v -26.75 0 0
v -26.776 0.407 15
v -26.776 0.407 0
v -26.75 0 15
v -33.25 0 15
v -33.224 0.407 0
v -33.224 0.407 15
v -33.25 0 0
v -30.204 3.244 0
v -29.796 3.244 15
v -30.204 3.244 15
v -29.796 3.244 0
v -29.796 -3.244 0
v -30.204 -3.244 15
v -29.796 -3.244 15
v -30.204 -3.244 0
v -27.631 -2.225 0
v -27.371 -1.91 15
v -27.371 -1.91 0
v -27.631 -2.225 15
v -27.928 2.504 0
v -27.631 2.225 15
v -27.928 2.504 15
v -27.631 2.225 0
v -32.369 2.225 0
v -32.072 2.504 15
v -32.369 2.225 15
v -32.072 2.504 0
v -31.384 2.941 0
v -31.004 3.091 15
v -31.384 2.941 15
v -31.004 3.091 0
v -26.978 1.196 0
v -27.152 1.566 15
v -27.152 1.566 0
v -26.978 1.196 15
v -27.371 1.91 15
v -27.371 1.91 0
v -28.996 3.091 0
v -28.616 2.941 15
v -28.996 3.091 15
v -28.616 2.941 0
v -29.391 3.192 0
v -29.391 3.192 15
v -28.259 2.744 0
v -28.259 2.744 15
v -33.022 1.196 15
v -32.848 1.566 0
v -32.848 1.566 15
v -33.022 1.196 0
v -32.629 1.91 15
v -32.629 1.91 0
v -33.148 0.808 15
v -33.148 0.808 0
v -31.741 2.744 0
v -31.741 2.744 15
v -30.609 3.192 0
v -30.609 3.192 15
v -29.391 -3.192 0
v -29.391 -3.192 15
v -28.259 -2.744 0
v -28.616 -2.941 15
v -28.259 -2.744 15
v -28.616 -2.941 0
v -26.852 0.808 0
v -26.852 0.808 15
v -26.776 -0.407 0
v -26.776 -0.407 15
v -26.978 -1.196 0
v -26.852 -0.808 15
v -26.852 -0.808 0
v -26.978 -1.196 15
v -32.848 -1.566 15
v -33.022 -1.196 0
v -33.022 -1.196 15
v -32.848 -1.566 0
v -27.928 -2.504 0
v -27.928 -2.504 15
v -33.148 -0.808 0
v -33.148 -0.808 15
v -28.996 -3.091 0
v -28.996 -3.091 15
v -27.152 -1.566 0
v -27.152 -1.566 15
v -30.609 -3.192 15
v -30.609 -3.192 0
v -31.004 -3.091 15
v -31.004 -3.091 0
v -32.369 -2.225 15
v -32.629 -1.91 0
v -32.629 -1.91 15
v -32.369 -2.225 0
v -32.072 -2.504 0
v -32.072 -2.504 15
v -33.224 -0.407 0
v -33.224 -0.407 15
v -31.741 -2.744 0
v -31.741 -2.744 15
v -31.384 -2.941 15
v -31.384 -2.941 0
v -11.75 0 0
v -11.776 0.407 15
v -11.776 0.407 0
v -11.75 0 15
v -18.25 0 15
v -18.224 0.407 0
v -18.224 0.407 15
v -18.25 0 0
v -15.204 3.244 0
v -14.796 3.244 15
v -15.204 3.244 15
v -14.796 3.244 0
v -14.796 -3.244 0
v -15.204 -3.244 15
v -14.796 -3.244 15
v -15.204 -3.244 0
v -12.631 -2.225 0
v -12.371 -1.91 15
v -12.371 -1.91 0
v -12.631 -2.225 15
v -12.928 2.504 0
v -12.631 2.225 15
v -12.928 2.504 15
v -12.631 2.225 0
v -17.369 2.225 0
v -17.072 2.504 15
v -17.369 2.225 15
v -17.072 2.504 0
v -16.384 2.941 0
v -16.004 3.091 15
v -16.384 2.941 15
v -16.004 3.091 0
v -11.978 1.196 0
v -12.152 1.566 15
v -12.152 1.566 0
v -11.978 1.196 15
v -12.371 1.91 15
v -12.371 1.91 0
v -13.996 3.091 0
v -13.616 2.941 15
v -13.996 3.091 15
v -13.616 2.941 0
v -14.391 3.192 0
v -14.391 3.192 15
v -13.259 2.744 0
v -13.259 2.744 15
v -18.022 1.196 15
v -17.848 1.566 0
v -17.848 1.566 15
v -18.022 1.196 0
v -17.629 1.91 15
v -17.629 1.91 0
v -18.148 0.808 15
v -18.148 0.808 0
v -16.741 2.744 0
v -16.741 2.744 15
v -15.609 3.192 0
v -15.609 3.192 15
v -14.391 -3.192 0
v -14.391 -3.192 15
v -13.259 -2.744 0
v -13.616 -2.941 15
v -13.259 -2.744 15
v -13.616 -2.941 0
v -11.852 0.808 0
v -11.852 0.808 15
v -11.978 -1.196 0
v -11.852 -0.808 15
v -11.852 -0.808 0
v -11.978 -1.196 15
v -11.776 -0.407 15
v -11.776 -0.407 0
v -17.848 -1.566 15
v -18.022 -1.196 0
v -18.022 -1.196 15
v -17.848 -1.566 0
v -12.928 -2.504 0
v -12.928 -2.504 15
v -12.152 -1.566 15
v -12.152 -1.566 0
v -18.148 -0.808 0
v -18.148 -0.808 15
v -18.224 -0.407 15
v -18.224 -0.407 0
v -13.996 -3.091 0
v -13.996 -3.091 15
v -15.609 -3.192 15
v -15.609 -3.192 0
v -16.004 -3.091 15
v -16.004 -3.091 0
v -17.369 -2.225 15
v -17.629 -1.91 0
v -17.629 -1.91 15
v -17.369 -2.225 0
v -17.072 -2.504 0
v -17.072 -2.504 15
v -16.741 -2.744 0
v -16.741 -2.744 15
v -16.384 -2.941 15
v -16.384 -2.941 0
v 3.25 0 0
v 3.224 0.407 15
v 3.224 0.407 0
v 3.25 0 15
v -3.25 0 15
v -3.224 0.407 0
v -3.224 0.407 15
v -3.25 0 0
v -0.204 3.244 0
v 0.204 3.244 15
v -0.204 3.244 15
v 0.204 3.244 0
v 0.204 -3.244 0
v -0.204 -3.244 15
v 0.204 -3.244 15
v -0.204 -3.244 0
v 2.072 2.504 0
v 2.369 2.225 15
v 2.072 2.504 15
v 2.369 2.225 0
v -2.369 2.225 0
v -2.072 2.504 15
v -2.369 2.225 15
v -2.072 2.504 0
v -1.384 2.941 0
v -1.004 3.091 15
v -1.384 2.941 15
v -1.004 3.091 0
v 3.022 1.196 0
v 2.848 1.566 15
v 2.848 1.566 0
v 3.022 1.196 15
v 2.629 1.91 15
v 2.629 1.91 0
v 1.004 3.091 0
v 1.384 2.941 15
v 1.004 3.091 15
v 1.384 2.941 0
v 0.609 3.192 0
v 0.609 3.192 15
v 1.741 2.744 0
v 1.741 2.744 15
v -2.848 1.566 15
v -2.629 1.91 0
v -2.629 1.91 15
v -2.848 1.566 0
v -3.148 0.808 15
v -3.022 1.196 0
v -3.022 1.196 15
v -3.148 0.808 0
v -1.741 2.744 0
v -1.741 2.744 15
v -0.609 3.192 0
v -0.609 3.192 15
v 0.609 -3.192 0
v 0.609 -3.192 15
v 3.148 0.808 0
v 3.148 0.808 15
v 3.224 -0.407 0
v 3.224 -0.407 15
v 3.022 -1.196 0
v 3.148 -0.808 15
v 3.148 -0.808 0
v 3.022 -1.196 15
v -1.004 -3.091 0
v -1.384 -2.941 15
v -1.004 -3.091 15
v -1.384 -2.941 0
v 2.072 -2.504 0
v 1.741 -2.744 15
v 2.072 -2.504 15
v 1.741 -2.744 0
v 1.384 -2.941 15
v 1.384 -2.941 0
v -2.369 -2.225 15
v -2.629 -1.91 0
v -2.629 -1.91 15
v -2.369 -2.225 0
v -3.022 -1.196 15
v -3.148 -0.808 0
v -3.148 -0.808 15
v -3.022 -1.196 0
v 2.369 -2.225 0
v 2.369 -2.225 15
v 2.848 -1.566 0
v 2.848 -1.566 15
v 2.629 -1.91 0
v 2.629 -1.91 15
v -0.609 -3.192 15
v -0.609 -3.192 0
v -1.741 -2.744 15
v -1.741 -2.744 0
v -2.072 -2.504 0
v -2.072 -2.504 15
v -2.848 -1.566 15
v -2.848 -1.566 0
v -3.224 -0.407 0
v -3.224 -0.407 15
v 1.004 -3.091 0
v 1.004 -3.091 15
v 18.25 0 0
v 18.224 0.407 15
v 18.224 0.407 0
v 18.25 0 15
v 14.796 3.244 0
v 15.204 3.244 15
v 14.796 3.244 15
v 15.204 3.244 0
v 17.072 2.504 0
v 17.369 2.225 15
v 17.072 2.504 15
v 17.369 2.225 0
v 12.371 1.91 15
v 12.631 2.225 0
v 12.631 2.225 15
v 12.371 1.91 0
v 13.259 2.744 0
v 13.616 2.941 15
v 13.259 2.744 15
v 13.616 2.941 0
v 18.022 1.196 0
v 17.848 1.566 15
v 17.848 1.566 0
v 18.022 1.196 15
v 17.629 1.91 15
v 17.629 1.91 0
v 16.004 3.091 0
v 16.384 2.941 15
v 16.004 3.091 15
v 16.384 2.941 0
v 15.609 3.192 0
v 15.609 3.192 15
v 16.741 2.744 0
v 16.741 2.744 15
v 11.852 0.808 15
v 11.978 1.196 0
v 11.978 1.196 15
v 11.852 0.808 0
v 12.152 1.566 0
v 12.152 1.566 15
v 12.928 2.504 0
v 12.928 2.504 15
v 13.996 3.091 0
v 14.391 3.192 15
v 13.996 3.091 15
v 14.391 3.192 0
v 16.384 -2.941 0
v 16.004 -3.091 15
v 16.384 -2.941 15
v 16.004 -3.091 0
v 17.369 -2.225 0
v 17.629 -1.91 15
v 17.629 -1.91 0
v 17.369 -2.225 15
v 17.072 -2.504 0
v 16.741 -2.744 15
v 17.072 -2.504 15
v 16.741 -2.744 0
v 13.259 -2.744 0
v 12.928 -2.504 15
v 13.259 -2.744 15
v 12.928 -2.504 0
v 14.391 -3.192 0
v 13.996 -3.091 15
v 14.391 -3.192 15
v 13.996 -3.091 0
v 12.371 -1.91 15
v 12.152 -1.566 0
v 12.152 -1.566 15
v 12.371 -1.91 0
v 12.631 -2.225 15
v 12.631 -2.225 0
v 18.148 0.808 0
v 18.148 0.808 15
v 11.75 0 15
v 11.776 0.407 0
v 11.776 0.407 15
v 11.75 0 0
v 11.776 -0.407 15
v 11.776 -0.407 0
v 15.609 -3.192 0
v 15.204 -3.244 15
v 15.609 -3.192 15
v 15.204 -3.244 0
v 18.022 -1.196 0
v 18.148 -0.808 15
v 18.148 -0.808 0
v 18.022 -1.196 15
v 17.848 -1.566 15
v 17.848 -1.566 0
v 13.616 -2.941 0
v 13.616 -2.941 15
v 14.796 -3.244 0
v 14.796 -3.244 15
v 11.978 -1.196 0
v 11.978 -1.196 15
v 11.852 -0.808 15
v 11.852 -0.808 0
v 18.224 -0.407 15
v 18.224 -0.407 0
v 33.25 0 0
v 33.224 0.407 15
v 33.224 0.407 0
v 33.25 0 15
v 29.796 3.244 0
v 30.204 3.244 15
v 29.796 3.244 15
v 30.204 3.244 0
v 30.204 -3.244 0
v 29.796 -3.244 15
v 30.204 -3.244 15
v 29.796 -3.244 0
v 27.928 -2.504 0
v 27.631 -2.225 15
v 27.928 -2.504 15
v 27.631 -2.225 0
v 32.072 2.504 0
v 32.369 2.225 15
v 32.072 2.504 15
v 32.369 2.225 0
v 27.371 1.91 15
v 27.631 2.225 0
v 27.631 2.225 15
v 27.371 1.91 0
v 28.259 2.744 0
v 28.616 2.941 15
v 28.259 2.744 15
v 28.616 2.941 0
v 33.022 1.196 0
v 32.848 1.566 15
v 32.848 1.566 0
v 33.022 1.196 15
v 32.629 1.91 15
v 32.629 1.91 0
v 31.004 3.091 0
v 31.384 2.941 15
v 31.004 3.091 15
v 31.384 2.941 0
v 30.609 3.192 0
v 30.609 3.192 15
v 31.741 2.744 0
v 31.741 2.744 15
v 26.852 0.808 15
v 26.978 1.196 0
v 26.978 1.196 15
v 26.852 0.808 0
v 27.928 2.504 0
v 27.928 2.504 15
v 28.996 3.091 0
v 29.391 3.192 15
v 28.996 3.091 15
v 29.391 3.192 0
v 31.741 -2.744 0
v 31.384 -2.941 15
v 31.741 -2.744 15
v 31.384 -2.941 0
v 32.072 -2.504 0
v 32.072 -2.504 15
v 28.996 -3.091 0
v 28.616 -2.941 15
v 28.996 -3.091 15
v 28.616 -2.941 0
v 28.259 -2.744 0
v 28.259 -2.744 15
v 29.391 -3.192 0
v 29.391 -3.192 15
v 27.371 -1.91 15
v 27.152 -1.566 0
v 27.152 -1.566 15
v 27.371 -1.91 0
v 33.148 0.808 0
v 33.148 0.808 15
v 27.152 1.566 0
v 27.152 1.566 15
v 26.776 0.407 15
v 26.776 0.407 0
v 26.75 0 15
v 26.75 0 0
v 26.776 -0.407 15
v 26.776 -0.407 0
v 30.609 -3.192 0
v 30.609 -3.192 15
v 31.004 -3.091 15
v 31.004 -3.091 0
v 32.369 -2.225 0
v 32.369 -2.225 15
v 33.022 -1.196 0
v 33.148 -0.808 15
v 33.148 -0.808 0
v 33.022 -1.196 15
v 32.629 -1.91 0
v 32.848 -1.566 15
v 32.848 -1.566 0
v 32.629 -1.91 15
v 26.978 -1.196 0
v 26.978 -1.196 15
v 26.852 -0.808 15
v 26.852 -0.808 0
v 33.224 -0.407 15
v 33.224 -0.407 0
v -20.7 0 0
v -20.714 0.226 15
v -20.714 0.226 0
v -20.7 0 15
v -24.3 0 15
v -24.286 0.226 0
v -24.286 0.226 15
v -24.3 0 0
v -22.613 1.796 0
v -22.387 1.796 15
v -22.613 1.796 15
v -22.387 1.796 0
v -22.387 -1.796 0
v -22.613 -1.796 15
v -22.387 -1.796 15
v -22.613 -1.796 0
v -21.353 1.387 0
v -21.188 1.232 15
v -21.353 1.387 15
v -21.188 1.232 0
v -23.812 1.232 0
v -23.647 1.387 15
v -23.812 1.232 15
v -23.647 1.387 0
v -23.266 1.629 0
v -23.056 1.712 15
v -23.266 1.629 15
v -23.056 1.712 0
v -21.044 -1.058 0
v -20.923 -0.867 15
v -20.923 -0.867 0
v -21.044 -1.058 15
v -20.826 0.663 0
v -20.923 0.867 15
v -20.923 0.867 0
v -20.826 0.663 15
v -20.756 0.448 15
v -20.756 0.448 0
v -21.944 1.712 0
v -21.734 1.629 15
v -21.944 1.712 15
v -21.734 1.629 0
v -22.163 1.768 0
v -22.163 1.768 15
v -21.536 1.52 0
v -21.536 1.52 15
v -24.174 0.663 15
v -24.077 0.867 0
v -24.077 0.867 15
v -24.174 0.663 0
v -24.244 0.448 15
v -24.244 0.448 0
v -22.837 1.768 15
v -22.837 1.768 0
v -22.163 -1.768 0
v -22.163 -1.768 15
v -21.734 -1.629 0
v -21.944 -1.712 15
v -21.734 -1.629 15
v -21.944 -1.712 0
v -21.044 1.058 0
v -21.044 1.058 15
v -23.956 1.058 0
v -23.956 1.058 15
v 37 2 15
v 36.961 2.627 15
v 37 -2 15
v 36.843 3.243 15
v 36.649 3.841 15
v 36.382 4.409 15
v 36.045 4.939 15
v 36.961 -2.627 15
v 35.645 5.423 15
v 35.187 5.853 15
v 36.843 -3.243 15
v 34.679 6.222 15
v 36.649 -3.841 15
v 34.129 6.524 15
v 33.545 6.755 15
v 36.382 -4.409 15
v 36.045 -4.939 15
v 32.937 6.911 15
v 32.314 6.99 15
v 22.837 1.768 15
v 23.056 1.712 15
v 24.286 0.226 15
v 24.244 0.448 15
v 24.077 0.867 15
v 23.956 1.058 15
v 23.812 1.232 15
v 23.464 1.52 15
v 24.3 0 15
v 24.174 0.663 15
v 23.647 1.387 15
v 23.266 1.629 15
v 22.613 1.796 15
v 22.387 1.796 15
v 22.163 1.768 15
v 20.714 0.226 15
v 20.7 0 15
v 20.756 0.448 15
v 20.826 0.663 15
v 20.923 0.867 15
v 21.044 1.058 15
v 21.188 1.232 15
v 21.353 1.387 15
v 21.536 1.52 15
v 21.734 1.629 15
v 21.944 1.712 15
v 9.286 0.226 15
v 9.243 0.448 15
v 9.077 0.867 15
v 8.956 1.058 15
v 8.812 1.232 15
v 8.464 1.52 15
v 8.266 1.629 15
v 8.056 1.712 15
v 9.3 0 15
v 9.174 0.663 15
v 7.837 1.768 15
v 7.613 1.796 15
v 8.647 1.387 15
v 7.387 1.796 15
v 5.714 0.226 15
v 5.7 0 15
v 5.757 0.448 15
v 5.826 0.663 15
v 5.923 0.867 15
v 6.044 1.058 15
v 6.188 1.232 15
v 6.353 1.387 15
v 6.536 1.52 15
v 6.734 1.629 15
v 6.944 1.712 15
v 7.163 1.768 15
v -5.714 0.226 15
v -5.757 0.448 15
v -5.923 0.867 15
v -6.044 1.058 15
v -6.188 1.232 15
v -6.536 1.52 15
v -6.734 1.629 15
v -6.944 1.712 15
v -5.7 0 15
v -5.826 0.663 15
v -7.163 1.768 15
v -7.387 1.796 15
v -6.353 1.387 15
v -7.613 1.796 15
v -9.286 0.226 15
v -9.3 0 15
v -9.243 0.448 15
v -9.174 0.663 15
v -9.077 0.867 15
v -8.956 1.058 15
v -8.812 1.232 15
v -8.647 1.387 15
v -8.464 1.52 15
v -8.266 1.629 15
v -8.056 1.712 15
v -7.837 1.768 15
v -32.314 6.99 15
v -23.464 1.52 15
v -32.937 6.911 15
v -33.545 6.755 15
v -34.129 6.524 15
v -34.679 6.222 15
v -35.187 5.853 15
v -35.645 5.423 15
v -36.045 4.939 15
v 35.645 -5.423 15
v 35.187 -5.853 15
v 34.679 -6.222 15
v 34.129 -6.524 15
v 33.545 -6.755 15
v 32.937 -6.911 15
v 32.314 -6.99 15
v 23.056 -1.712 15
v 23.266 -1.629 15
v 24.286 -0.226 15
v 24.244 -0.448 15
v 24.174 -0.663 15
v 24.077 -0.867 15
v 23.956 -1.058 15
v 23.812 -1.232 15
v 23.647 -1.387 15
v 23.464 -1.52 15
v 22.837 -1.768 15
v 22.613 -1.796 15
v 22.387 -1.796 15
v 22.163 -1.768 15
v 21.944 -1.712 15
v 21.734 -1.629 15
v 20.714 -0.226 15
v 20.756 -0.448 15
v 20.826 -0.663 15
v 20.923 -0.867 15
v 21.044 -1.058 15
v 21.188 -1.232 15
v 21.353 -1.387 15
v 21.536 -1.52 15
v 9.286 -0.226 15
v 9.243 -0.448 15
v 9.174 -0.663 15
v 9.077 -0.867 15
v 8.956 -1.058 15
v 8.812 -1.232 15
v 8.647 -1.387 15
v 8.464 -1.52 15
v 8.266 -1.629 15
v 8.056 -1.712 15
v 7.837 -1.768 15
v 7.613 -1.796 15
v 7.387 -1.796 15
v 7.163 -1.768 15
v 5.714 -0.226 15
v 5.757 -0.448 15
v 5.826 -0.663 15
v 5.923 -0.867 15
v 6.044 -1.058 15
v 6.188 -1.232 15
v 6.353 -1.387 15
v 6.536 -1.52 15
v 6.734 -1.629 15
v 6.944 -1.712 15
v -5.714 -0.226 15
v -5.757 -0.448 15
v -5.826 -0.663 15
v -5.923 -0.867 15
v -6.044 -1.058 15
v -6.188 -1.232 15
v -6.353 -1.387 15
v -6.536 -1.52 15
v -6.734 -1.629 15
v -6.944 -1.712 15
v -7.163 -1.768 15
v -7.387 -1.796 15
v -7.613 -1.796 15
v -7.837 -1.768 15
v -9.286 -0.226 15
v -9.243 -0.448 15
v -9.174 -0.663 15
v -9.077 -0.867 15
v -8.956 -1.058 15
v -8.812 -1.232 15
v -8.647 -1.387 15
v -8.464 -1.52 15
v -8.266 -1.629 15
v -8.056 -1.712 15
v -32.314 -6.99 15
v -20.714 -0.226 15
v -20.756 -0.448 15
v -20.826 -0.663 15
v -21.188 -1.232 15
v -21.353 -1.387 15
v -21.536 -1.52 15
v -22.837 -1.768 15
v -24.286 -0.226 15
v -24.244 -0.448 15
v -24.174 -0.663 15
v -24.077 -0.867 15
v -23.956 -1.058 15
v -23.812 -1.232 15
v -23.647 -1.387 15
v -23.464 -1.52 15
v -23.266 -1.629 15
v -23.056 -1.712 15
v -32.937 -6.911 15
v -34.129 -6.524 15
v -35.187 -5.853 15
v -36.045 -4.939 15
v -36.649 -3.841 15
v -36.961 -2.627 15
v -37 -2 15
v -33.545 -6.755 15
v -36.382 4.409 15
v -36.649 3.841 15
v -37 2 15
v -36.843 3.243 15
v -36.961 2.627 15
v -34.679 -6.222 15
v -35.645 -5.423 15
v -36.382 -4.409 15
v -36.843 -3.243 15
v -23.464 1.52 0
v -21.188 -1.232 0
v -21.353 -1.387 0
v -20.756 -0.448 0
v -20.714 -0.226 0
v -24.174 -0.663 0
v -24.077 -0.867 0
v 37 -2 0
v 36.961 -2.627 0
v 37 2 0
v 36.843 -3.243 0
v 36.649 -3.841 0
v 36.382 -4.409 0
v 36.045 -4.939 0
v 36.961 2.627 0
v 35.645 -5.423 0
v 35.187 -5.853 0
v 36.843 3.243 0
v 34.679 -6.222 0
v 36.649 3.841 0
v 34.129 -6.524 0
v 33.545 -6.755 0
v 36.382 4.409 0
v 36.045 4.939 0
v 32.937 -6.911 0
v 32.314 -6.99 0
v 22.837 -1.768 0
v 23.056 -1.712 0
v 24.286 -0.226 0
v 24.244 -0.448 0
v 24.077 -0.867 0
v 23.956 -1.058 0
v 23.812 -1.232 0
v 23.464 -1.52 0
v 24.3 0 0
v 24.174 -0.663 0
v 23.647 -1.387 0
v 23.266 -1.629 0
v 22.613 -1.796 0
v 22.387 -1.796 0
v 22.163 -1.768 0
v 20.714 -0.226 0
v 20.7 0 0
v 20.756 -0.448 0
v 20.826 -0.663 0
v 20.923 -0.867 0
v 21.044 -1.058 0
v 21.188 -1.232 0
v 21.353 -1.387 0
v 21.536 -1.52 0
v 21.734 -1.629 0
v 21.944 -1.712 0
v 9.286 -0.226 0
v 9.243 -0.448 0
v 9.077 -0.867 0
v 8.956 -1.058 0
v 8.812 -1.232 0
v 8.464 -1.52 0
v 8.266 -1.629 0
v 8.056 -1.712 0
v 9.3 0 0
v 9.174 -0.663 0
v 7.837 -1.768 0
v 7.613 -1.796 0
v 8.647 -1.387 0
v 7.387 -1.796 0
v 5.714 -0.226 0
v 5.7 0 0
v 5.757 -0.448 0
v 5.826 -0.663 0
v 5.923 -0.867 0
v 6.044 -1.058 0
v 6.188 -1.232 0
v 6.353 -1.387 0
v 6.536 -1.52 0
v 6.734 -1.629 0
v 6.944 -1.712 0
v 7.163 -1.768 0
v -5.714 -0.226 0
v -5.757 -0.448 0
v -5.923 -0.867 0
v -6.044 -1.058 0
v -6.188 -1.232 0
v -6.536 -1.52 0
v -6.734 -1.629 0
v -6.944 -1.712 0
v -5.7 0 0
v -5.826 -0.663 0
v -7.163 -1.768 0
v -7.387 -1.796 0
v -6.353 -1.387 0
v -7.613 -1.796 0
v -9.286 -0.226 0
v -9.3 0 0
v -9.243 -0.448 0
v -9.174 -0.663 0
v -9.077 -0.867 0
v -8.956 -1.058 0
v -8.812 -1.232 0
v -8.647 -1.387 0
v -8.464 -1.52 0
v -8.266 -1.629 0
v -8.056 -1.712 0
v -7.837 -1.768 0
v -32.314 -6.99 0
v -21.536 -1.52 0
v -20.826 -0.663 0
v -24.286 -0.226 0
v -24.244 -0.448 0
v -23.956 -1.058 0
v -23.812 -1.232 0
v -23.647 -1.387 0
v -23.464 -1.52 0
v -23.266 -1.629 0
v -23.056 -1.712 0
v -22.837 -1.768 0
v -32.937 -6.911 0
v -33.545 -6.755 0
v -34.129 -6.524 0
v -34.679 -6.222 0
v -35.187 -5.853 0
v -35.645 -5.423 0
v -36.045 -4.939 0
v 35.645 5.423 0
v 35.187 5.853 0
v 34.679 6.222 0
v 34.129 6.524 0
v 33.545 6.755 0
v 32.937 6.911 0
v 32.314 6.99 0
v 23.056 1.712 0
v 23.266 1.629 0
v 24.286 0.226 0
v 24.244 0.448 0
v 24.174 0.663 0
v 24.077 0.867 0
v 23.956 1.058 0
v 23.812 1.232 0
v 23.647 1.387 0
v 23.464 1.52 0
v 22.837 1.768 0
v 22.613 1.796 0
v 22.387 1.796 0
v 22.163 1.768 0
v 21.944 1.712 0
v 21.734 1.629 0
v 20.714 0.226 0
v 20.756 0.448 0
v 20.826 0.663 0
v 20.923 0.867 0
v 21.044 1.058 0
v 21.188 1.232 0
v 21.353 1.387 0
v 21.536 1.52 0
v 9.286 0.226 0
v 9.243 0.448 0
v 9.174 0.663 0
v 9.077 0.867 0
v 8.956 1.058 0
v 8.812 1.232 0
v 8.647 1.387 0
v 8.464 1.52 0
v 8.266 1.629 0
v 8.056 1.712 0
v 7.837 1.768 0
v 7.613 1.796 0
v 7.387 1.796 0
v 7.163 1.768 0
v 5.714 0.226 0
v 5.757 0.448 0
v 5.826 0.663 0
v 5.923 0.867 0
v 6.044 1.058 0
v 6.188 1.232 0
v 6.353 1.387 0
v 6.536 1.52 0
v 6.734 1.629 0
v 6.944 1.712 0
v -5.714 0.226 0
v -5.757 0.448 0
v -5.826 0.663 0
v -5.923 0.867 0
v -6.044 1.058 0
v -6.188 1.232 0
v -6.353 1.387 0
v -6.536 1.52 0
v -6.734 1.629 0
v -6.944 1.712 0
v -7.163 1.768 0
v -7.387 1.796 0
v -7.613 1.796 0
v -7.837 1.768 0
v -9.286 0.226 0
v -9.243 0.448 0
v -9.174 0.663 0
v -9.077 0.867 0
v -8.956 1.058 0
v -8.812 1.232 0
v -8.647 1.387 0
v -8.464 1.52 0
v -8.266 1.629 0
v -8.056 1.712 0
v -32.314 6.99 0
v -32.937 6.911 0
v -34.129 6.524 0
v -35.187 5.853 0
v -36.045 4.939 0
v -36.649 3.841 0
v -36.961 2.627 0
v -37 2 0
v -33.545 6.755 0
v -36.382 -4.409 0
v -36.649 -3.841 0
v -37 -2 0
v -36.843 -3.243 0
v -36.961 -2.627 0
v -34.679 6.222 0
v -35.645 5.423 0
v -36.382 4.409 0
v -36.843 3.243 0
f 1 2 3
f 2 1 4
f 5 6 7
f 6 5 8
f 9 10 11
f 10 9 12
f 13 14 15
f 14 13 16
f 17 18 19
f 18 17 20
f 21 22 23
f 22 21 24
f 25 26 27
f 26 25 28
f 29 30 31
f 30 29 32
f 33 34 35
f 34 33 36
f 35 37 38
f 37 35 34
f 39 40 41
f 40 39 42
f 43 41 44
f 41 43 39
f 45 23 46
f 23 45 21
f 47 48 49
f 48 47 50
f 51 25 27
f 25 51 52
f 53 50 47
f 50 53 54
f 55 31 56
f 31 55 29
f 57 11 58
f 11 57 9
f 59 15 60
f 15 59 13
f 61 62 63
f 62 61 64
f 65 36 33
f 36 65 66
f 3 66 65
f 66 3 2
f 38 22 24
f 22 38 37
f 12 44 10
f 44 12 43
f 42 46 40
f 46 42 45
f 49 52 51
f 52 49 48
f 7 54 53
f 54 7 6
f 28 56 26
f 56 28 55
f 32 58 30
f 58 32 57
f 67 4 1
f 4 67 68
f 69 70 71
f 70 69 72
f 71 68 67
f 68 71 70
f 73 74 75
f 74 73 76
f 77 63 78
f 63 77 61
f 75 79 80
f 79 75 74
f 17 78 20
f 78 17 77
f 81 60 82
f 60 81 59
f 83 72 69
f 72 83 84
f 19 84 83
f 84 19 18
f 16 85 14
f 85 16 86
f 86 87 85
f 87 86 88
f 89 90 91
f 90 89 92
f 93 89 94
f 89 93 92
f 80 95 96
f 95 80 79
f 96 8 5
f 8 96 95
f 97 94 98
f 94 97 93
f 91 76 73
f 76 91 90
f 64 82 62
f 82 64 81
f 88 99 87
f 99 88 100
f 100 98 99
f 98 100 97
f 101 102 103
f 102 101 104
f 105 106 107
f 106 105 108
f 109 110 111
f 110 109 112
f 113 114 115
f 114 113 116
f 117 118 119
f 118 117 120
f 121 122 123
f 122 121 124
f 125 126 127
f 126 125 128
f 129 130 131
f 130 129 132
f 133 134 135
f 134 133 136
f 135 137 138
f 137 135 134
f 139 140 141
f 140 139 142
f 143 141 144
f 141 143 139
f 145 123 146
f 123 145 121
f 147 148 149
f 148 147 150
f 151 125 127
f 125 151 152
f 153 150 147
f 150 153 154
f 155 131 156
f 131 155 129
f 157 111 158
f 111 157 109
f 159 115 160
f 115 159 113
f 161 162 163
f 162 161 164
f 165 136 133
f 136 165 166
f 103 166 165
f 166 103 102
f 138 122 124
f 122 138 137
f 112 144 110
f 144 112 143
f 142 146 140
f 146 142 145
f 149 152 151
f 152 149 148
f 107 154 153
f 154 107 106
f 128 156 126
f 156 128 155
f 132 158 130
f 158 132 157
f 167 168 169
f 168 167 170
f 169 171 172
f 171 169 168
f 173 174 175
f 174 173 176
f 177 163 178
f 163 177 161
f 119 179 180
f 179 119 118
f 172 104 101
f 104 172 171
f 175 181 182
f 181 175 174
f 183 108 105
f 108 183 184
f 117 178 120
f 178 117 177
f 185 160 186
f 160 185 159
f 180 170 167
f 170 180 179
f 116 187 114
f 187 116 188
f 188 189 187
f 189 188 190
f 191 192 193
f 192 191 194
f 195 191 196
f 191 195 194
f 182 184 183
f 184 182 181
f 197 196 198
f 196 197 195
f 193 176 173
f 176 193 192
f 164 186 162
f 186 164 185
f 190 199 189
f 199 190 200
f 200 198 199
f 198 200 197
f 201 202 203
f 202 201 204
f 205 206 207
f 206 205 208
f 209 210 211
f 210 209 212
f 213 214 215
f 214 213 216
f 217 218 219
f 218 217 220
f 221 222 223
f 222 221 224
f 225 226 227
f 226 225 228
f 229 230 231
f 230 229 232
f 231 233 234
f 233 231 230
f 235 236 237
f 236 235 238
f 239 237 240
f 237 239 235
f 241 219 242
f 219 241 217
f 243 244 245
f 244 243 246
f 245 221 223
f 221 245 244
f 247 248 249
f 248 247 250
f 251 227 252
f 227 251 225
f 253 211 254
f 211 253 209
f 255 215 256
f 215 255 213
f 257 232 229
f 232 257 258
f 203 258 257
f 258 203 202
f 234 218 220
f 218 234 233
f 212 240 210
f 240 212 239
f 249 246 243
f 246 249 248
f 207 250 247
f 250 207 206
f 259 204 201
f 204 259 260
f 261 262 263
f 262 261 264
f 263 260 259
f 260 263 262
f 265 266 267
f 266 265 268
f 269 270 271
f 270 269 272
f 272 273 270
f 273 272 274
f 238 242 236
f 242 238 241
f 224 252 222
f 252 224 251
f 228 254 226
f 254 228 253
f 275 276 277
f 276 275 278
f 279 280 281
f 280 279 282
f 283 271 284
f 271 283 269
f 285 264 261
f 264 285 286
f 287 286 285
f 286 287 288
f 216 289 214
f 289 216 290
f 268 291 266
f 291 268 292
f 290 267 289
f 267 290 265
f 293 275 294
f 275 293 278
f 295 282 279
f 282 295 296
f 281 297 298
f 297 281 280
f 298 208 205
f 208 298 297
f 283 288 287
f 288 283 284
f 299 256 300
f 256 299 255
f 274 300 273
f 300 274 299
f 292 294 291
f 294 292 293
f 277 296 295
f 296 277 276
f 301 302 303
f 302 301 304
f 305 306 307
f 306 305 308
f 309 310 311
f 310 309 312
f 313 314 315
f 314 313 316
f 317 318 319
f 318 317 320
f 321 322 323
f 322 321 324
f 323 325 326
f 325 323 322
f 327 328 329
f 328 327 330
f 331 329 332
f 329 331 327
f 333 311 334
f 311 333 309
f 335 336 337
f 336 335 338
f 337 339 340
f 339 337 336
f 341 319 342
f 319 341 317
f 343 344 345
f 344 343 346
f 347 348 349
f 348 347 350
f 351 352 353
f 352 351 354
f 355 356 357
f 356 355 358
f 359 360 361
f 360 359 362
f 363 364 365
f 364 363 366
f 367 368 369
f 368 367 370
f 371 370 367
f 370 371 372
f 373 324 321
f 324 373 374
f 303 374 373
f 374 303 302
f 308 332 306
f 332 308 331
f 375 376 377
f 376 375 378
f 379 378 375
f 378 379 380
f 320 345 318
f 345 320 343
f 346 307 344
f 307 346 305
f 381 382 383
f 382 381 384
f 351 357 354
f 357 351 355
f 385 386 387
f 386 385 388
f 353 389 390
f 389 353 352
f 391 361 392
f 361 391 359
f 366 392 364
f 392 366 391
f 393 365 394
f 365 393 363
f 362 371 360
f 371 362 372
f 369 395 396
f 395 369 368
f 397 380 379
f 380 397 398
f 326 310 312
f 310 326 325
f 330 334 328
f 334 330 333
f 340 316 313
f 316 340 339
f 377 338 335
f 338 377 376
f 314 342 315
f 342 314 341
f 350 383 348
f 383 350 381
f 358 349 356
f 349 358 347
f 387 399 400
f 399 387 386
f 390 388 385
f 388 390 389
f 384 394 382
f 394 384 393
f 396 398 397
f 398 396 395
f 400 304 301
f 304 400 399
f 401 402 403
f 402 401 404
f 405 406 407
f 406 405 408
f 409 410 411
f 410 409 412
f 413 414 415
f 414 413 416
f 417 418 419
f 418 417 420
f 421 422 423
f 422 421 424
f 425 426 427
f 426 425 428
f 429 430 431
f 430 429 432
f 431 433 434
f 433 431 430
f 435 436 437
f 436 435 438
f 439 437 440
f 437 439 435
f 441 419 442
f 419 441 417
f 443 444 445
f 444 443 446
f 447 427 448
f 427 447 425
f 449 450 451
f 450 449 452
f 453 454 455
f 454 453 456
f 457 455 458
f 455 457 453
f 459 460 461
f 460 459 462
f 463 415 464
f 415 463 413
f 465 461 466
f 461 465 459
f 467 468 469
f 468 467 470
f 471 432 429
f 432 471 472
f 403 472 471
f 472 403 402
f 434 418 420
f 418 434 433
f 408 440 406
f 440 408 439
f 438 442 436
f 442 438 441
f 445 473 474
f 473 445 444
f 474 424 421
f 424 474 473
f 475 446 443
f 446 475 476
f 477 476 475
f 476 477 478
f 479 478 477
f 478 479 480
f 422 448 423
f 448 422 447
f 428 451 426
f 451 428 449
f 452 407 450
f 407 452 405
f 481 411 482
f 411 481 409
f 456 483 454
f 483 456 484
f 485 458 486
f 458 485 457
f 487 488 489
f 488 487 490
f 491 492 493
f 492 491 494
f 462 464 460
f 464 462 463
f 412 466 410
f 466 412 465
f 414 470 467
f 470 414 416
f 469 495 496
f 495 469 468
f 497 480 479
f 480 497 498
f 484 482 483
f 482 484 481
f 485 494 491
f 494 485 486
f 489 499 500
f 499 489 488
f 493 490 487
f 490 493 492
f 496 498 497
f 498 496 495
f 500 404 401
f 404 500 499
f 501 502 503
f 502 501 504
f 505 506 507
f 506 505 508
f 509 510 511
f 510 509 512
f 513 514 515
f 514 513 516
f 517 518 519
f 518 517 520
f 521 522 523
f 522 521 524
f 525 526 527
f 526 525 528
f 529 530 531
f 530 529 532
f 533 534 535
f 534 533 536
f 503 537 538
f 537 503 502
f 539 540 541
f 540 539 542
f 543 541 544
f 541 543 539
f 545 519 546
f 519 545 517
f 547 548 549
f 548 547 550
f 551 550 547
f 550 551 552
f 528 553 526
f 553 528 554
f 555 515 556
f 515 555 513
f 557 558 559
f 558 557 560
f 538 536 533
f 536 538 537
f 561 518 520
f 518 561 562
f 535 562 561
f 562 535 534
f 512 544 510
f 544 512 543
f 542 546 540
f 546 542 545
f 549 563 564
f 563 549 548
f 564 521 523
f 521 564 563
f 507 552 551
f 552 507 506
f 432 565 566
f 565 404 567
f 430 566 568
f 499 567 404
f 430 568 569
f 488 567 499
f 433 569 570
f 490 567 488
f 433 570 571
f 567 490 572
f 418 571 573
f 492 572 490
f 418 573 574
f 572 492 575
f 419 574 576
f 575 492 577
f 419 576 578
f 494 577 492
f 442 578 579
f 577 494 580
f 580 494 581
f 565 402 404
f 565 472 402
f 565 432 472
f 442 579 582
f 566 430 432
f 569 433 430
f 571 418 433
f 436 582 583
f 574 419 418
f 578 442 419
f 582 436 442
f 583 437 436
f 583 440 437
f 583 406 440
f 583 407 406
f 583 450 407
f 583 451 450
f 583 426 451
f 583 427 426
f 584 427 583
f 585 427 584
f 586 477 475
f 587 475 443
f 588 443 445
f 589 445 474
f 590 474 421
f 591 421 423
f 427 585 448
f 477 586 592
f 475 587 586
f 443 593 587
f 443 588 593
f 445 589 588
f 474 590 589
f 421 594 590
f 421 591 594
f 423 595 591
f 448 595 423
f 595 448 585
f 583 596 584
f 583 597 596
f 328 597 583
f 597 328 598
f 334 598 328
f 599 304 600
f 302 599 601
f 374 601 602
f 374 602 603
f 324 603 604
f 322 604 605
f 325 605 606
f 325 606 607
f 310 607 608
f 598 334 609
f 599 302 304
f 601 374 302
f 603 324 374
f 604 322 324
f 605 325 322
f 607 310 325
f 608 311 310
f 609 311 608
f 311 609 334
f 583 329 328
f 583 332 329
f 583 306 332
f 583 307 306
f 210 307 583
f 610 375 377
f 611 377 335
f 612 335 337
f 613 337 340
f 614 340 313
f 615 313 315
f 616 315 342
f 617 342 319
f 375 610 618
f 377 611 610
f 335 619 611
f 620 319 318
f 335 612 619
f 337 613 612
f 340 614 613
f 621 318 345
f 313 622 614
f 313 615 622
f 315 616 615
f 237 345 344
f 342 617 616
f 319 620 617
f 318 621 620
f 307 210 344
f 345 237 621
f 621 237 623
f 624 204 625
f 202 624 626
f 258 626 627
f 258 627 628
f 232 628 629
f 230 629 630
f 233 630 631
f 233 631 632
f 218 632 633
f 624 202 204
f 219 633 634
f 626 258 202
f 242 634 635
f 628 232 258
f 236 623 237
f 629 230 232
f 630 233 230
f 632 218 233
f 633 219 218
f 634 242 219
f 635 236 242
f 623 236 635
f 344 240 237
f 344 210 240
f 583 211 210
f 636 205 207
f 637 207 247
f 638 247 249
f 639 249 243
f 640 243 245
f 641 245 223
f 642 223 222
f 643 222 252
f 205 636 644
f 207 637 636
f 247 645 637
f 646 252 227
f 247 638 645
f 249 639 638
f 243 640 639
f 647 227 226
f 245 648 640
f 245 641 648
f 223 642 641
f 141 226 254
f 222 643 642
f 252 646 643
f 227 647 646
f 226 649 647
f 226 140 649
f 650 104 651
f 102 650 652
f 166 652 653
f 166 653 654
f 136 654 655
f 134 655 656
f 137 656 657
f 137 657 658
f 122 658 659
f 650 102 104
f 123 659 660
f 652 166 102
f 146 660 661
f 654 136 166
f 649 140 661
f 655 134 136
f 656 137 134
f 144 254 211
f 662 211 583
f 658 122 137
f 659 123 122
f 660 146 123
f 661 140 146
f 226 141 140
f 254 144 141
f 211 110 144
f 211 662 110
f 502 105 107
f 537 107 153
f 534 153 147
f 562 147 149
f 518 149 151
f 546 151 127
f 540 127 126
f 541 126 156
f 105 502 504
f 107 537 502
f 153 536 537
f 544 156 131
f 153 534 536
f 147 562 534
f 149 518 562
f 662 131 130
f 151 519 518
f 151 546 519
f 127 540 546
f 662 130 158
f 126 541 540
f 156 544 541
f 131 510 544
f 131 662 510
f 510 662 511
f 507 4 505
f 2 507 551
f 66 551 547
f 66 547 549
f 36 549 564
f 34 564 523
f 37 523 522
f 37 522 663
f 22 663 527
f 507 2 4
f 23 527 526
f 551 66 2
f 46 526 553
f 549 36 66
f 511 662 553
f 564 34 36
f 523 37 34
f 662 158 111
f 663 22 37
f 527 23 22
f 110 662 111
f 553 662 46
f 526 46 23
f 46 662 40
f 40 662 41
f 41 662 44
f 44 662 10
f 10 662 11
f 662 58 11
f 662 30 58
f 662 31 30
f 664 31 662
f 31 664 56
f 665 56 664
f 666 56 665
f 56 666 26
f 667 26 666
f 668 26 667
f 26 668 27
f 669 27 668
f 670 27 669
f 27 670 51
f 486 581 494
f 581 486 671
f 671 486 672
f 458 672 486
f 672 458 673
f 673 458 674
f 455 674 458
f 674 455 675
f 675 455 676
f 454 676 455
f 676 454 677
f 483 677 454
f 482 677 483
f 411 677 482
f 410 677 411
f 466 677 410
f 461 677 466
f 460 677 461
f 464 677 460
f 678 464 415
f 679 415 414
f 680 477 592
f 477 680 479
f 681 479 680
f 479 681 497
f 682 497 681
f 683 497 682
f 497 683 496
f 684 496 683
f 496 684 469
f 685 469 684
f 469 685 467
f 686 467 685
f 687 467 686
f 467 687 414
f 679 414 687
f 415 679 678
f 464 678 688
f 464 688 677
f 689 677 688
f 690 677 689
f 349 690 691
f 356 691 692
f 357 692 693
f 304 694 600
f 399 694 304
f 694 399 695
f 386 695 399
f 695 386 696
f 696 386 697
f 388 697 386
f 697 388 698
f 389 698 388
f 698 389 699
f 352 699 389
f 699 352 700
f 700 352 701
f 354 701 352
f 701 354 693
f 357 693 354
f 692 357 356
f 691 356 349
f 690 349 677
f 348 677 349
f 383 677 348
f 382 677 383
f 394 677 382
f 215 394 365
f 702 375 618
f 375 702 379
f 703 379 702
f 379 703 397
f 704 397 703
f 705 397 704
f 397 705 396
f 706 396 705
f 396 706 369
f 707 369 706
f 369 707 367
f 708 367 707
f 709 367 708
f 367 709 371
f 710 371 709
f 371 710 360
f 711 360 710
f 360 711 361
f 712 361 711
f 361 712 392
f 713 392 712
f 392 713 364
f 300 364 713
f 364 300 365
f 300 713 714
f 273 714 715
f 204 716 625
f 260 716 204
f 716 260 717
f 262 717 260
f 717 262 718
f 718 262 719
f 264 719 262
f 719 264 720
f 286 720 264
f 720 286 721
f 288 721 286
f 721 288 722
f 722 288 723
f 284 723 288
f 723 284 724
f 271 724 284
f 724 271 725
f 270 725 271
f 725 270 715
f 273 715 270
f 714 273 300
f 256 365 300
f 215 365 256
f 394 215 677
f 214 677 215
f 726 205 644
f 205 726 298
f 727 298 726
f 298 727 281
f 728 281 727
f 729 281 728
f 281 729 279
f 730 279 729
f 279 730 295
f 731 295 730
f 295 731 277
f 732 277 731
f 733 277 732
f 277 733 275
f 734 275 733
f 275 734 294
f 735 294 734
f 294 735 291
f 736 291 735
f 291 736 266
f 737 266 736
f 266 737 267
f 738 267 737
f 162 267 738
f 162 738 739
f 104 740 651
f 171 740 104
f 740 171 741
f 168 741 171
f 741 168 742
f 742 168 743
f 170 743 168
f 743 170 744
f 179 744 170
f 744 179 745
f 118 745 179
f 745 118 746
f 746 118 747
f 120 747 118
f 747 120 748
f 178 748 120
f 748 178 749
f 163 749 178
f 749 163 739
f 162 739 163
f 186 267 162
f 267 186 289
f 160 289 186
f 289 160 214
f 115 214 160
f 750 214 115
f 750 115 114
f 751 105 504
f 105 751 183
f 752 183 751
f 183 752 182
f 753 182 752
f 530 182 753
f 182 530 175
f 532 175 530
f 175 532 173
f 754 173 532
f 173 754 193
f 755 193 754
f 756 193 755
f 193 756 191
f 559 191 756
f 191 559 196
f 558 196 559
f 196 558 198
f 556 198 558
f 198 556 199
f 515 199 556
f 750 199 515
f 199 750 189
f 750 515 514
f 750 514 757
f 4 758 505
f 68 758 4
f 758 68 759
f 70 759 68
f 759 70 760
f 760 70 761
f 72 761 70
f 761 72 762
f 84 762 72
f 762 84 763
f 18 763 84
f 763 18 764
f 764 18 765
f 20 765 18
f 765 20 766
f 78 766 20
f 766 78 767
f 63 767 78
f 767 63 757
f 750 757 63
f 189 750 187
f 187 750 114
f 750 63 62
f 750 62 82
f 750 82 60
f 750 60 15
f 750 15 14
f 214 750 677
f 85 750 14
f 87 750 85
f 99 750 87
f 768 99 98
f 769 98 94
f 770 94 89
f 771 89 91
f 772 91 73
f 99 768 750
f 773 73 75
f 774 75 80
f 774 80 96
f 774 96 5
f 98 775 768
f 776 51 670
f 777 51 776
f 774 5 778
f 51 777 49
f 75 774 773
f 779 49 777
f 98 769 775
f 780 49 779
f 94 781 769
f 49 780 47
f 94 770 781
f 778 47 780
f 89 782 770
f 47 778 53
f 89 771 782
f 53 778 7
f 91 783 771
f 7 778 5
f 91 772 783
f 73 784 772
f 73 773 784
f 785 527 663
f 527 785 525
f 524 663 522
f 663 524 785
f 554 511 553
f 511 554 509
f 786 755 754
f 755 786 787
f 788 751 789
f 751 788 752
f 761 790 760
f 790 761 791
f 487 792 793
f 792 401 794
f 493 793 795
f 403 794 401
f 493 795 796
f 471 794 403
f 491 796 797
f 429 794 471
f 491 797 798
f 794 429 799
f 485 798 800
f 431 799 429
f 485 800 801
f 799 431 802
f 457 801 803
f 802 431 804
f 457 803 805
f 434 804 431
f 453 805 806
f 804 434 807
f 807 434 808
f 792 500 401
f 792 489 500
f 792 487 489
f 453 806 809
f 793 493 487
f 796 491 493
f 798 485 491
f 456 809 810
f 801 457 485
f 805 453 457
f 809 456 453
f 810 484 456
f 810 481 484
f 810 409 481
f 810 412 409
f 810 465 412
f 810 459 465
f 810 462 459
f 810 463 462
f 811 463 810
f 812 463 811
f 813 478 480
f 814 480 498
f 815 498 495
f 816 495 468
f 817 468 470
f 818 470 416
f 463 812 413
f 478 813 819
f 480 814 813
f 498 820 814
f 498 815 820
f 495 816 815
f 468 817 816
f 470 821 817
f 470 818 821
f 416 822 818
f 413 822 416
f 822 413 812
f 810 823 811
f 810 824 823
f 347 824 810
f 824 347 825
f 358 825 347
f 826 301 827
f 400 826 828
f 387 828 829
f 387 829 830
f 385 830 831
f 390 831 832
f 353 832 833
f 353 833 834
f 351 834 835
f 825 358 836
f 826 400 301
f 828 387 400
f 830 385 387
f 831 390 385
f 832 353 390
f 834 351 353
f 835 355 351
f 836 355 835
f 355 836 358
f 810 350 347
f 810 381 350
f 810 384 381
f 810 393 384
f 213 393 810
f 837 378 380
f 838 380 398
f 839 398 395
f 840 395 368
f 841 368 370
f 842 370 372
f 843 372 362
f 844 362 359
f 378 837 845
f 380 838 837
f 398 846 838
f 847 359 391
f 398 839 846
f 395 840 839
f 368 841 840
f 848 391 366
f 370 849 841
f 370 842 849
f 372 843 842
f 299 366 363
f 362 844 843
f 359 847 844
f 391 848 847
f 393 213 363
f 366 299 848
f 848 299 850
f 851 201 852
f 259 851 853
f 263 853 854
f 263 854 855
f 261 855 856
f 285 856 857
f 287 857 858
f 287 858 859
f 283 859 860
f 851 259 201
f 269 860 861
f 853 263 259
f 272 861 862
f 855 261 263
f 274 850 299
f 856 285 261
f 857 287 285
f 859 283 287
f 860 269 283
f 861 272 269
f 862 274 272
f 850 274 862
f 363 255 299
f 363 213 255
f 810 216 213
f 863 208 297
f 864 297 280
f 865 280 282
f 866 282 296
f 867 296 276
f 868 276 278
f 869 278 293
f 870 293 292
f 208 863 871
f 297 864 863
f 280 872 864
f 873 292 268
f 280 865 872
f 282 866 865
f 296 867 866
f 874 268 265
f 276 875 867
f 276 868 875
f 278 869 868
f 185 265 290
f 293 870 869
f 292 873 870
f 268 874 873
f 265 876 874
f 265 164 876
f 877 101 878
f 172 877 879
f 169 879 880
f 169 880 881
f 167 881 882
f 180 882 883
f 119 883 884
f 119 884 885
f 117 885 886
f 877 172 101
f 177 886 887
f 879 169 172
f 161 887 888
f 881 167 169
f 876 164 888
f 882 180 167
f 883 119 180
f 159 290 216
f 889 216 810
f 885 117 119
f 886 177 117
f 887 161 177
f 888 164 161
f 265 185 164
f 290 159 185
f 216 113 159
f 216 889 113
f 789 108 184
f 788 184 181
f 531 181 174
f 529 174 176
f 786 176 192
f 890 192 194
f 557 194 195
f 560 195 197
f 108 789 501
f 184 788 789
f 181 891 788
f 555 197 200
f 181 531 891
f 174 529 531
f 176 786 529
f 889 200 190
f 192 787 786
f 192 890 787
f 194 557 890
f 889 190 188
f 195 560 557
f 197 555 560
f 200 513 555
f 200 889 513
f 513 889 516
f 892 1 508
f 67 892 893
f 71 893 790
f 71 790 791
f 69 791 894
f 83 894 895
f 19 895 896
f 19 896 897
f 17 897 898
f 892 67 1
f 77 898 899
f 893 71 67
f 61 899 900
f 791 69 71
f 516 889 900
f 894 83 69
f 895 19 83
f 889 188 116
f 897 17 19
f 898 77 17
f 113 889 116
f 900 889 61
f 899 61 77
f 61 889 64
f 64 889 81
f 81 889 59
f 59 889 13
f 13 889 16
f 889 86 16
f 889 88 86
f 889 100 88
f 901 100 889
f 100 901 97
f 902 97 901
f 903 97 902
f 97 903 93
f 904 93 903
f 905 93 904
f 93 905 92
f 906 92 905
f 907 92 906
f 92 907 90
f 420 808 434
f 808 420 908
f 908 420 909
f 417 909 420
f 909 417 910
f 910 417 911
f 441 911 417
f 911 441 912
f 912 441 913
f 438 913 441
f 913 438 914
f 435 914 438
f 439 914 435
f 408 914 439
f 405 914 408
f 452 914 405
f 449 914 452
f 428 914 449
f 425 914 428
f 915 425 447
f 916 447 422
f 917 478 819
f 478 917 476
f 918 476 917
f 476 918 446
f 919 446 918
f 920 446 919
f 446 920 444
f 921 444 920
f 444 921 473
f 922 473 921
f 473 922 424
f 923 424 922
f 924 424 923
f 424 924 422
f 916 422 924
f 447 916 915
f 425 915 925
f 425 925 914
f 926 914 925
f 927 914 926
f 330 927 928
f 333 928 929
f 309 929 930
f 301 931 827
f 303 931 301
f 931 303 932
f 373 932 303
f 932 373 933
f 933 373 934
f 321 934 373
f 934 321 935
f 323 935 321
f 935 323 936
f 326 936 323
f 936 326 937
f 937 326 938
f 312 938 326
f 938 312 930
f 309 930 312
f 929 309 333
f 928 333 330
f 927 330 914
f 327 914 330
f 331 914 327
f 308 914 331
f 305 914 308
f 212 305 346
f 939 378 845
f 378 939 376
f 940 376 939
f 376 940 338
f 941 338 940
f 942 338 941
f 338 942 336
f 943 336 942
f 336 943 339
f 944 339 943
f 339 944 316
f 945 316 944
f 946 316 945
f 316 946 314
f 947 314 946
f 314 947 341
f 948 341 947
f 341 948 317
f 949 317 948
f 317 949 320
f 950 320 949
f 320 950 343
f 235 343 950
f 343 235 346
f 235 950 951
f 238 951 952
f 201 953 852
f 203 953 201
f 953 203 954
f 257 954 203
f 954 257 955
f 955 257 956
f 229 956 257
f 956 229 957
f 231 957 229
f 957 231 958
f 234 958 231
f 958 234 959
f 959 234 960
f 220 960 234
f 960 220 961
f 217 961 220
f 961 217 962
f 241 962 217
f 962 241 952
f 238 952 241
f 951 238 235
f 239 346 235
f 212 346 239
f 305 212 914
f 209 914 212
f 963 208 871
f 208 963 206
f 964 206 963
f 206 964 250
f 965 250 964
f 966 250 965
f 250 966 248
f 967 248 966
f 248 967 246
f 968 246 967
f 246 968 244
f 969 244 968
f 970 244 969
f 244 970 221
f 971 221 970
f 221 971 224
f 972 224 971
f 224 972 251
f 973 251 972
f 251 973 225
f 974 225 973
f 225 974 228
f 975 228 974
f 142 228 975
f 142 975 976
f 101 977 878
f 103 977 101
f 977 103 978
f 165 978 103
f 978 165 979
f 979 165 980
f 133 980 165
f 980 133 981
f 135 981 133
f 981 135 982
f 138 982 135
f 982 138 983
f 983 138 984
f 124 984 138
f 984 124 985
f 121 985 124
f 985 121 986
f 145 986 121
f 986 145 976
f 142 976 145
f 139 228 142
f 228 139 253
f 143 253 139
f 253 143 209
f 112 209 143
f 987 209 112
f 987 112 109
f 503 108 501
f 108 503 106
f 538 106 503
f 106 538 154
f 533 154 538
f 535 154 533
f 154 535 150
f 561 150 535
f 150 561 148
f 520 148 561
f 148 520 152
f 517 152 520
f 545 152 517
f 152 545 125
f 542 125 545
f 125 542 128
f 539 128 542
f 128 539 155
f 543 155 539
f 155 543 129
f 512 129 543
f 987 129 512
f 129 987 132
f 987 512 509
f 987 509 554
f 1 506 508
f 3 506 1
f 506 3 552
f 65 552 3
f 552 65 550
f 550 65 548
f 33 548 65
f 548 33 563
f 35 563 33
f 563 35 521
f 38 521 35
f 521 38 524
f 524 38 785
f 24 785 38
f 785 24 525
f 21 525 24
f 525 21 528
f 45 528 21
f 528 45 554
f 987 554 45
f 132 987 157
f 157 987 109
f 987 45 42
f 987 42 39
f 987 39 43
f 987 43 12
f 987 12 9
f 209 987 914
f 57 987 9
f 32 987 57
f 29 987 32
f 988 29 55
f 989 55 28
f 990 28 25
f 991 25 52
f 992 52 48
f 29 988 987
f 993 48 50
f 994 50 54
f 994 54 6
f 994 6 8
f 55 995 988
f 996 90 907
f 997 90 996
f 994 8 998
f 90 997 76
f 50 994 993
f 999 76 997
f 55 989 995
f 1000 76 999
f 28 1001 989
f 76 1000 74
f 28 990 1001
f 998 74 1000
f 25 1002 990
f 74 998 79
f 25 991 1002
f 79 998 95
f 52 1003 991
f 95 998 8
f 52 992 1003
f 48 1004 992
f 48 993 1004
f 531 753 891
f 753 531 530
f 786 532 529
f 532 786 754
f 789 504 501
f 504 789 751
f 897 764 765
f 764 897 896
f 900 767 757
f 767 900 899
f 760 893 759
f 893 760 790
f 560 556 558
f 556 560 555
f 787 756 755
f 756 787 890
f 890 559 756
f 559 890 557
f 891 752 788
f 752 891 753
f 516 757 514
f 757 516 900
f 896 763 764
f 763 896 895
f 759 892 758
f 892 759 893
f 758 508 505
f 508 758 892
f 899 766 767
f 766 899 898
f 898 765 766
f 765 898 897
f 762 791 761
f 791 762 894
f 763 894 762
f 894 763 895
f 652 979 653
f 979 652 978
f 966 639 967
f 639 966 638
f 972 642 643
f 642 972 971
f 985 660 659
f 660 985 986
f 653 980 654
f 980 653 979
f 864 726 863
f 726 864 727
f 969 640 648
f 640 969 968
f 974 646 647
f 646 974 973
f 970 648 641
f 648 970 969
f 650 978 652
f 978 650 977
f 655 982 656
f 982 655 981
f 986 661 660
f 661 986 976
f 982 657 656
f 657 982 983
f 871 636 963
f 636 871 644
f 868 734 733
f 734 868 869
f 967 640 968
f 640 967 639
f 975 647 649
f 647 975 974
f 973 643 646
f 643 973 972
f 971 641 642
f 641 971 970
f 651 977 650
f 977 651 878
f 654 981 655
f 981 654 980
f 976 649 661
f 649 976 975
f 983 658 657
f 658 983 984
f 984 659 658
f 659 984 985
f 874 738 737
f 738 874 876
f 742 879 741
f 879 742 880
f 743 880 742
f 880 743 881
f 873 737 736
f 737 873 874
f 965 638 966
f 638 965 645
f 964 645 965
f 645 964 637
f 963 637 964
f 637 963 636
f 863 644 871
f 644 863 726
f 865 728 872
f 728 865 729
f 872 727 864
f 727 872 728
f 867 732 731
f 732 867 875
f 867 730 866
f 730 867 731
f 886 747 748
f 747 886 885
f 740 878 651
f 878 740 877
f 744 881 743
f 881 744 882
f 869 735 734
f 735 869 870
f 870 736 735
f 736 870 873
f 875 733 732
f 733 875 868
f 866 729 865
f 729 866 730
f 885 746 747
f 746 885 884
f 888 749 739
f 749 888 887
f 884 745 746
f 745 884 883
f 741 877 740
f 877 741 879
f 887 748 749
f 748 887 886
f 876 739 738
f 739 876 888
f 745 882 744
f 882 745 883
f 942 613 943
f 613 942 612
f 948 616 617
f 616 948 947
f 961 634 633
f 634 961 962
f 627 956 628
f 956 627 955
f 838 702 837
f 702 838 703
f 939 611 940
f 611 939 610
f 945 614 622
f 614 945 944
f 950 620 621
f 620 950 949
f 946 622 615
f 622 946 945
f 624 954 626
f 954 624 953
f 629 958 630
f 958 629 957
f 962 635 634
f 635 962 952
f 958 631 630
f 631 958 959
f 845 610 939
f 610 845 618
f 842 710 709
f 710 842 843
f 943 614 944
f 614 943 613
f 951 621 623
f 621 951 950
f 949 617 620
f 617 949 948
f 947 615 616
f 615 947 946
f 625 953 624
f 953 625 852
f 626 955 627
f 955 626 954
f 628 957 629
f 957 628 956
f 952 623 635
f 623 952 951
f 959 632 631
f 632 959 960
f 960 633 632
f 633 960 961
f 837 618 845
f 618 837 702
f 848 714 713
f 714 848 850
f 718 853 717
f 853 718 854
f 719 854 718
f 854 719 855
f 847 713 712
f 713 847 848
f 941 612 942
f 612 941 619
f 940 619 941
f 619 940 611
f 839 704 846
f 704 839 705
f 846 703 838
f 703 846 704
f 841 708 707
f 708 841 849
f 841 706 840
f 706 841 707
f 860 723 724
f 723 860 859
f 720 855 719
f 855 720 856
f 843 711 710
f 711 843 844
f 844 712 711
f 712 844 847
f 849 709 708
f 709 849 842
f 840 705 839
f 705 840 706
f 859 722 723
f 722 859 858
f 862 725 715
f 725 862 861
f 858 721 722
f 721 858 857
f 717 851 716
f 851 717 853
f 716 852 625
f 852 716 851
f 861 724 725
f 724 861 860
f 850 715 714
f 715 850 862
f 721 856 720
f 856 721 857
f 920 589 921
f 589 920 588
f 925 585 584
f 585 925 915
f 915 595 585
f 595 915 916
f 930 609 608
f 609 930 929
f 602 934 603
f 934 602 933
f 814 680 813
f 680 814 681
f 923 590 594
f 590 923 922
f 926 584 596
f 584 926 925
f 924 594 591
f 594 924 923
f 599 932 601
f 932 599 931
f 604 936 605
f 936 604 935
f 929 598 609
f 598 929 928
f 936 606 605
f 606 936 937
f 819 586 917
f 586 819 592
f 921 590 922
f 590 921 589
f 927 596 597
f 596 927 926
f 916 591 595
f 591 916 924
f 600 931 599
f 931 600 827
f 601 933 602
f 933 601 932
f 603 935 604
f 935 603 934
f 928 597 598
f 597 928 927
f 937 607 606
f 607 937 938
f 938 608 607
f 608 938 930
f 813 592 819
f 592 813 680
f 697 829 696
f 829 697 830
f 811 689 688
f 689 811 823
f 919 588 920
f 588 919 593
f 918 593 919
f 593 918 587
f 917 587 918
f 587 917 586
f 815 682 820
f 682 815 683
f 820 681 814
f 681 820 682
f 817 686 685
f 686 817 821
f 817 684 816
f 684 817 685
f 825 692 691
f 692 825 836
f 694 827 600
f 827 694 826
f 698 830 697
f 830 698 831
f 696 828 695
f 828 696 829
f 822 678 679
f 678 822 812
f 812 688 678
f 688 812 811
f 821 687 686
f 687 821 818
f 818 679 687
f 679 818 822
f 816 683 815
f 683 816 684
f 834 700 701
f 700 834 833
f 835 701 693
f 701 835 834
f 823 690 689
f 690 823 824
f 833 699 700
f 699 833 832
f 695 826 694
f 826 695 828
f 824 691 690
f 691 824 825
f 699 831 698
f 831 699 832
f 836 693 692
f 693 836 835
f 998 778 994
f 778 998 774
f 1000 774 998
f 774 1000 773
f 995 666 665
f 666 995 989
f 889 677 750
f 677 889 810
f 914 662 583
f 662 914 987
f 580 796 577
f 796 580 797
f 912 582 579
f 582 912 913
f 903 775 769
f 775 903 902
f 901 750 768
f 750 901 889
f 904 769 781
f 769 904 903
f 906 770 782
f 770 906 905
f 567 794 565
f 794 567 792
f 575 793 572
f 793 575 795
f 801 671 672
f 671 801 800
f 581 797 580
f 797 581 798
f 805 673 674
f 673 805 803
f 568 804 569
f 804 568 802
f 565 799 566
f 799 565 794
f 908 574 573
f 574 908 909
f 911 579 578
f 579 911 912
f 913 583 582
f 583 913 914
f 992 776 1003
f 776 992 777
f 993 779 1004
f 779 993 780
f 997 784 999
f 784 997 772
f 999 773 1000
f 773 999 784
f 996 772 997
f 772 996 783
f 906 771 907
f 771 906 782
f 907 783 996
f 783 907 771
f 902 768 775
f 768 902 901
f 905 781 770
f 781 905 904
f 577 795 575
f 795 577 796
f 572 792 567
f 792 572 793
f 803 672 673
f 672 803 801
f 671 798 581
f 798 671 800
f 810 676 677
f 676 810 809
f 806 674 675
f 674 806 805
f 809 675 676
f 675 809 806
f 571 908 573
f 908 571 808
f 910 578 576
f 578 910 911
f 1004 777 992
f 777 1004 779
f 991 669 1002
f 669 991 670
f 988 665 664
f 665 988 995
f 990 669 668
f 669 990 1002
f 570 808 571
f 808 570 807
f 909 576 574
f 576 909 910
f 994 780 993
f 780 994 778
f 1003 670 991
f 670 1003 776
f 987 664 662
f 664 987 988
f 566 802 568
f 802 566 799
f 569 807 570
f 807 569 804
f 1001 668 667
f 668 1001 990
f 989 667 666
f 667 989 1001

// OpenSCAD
$fn = 50;


difference() {
	union() {
		hull() {
			translate(v = [-32.0000000000, 2.0000000000, 0]) {
				cylinder(h = 15, r = 5);
			}
			translate(v = [32.0000000000, 2.0000000000, 0]) {
				cylinder(h = 15, r = 5);
			}
			translate(v = [-32.0000000000, -2.0000000000, 0]) {
				cylinder(h = 15, r = 5);
			}
			translate(v = [32.0000000000, -2.0000000000, 0]) {
				cylinder(h = 15, r = 5);
			}
		}
	}
	union() {
		translate(v = [-30.0000000000, 0.0000000000, -100.0000000000]) {
			cylinder(h = 200, r = 3.2500000000);
		}
		translate(v = [-15.0000000000, 0.0000000000, -100.0000000000]) {
			cylinder(h = 200, r = 3.2500000000);
		}
		translate(v = [0.0000000000, 0.0000000000, -100.0000000000]) {
			cylinder(h = 200, r = 3.2500000000);
		}
		translate(v = [15.0000000000, 0.0000000000, -100.0000000000]) {
			cylinder(h = 200, r = 3.2500000000);
		}
		translate(v = [30.0000000000, 0.0000000000, -100.0000000000]) {
			cylinder(h = 200, r = 3.2500000000);
		}
		translate(v = [-30.0000000000, 0.0000000000, 0]) {
			cylinder(h = 15, r = 1.8000000000);
		}
		translate(v = [-22.5000000000, 0.0000000000, 0]) {
			cylinder(h = 15, r = 1.8000000000);
		}
		translate(v = [-15.0000000000, 0.0000000000, 0]) {
			cylinder(h = 15, r = 1.8000000000);
		}
		translate(v = [-7.5000000000, 0.0000000000, 0]) {
			cylinder(h = 15, r = 1.8000000000);
		}
		cylinder(h = 15, r = 1.8000000000);
		translate(v = [7.5000000000, 0.0000000000, 0]) {
			cylinder(h = 15, r = 1.8000000000);
		}
		translate(v = [15.0000000000, 0.0000000000, 0]) {
			cylinder(h = 15, r = 1.8000000000);
		}
		translate(v = [22.5000000000, 0.0000000000, 0]) {
			cylinder(h = 15, r = 1.8000000000);
		}
		translate(v = [30.0000000000, 0.0000000000, 0]) {
			cylinder(h = 15, r = 1.8000000000);
		}
		translate(v = [-30.0000000000, 0.0000000000, 0]) {
			cylinder(h = 15, r = 1.8000000000);
		}
		translate(v = [-22.5000000000, 0.0000000000, 0]) {
			cylinder(h = 15, r = 1.8000000000);
		}
		translate(v = [-15.0000000000, 0.0000000000, 0]) {
			cylinder(h = 15, r = 1.8000000000);
		}
		translate(v = [-7.5000000000, 0.0000000000, 0]) {
			cylinder(h = 15, r = 1.8000000000);
		}
		cylinder(h = 15, r = 1.8000000000);
		translate(v = [7.5000000000, 0.0000000000, 0]) {
			cylinder(h = 15, r = 1.8000000000);
		}
		translate(v = [15.0000000000, 0.0000000000, 0]) {
			cylinder(h = 15, r = 1.8000000000);
		}
		translate(v = [22.5000000000, 0.0000000000, 0]) {
			cylinder(h = 15, r = 1.8000000000);
		}
		translate(v = [30.0000000000, 0.0000000000, 0]) {
			cylinder(h = 15, r = 1.8000000000);
		}
		translate(v = [-30.0000000000, 0.0000000000, 0]) {
			cylinder(h = 15, r = 1.8000000000);
		}
		translate(v = [-22.5000000000, 0.0000000000, 0]) {
			cylinder(h = 15, r = 1.8000000000);
		}
		translate(v = [-15.0000000000, 0.0000000000, 0]) {
			cylinder(h = 15, r = 1.8000000000);
		}
		translate(v = [-7.5000000000, 0.0000000000, 0]) {
			cylinder(h = 15, r = 1.8000000000);
		}
		cylinder(h = 15, r = 1.8000000000);
		translate(v = [7.5000000000, 0.0000000000, 0]) {
			cylinder(h = 15, r = 1.8000000000);
		}
		translate(v = [15.0000000000, 0.0000000000, 0]) {
			cylinder(h = 15, r = 1.8000000000);
		}
		translate(v = [22.5000000000, 0.0000000000, 0]) {
			cylinder(h = 15, r = 1.8000000000);
		}
		translate(v = [30.0000000000, 0.0000000000, 0]) {
			cylinder(h = 15, r = 1.8000000000);
		}
	}
}
